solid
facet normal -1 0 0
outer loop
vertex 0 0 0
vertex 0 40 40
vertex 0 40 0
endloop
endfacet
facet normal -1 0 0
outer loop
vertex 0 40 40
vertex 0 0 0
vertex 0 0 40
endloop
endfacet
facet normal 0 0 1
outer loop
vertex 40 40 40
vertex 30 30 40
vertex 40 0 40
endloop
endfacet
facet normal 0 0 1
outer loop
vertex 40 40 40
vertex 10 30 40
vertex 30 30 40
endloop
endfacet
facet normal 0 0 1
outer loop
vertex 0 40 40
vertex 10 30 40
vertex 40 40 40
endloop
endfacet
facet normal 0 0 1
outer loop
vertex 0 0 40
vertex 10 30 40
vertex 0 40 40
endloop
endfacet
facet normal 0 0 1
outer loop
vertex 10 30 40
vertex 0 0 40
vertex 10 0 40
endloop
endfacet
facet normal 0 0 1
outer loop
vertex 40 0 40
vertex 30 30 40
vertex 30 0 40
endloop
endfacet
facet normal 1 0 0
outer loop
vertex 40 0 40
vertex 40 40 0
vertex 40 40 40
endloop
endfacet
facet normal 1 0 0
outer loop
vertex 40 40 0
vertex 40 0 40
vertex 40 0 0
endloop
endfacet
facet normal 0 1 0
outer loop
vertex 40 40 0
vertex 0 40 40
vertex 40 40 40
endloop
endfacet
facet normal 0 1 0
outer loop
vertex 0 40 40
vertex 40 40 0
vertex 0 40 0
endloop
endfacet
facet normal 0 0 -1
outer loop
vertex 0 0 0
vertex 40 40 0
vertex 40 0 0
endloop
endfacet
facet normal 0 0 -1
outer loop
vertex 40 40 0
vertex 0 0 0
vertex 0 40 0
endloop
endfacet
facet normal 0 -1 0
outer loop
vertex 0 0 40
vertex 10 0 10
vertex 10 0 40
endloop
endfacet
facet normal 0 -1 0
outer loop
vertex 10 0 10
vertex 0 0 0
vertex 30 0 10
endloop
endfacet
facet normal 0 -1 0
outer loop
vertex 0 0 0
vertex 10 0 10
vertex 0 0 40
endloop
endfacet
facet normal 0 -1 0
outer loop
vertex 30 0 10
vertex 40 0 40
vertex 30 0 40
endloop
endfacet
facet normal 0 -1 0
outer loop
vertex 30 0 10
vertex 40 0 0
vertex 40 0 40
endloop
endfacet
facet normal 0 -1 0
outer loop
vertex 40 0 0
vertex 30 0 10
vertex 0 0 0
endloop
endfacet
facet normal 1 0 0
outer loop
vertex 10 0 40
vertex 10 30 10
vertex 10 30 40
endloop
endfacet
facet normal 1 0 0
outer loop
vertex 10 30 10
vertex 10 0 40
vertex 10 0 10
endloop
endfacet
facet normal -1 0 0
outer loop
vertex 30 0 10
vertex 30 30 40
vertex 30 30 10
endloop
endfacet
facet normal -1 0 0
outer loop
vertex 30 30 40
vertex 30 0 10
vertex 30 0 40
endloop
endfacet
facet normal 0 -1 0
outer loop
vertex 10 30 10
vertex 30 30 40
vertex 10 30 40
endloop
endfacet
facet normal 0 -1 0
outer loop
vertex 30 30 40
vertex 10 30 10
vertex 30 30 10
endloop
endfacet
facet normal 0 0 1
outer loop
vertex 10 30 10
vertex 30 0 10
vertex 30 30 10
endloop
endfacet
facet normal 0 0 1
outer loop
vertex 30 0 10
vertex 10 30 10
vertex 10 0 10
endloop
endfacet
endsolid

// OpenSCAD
difference(){

cube([40,40,40]);
translate([10,0,10])
cube([20,30,30]);

}
